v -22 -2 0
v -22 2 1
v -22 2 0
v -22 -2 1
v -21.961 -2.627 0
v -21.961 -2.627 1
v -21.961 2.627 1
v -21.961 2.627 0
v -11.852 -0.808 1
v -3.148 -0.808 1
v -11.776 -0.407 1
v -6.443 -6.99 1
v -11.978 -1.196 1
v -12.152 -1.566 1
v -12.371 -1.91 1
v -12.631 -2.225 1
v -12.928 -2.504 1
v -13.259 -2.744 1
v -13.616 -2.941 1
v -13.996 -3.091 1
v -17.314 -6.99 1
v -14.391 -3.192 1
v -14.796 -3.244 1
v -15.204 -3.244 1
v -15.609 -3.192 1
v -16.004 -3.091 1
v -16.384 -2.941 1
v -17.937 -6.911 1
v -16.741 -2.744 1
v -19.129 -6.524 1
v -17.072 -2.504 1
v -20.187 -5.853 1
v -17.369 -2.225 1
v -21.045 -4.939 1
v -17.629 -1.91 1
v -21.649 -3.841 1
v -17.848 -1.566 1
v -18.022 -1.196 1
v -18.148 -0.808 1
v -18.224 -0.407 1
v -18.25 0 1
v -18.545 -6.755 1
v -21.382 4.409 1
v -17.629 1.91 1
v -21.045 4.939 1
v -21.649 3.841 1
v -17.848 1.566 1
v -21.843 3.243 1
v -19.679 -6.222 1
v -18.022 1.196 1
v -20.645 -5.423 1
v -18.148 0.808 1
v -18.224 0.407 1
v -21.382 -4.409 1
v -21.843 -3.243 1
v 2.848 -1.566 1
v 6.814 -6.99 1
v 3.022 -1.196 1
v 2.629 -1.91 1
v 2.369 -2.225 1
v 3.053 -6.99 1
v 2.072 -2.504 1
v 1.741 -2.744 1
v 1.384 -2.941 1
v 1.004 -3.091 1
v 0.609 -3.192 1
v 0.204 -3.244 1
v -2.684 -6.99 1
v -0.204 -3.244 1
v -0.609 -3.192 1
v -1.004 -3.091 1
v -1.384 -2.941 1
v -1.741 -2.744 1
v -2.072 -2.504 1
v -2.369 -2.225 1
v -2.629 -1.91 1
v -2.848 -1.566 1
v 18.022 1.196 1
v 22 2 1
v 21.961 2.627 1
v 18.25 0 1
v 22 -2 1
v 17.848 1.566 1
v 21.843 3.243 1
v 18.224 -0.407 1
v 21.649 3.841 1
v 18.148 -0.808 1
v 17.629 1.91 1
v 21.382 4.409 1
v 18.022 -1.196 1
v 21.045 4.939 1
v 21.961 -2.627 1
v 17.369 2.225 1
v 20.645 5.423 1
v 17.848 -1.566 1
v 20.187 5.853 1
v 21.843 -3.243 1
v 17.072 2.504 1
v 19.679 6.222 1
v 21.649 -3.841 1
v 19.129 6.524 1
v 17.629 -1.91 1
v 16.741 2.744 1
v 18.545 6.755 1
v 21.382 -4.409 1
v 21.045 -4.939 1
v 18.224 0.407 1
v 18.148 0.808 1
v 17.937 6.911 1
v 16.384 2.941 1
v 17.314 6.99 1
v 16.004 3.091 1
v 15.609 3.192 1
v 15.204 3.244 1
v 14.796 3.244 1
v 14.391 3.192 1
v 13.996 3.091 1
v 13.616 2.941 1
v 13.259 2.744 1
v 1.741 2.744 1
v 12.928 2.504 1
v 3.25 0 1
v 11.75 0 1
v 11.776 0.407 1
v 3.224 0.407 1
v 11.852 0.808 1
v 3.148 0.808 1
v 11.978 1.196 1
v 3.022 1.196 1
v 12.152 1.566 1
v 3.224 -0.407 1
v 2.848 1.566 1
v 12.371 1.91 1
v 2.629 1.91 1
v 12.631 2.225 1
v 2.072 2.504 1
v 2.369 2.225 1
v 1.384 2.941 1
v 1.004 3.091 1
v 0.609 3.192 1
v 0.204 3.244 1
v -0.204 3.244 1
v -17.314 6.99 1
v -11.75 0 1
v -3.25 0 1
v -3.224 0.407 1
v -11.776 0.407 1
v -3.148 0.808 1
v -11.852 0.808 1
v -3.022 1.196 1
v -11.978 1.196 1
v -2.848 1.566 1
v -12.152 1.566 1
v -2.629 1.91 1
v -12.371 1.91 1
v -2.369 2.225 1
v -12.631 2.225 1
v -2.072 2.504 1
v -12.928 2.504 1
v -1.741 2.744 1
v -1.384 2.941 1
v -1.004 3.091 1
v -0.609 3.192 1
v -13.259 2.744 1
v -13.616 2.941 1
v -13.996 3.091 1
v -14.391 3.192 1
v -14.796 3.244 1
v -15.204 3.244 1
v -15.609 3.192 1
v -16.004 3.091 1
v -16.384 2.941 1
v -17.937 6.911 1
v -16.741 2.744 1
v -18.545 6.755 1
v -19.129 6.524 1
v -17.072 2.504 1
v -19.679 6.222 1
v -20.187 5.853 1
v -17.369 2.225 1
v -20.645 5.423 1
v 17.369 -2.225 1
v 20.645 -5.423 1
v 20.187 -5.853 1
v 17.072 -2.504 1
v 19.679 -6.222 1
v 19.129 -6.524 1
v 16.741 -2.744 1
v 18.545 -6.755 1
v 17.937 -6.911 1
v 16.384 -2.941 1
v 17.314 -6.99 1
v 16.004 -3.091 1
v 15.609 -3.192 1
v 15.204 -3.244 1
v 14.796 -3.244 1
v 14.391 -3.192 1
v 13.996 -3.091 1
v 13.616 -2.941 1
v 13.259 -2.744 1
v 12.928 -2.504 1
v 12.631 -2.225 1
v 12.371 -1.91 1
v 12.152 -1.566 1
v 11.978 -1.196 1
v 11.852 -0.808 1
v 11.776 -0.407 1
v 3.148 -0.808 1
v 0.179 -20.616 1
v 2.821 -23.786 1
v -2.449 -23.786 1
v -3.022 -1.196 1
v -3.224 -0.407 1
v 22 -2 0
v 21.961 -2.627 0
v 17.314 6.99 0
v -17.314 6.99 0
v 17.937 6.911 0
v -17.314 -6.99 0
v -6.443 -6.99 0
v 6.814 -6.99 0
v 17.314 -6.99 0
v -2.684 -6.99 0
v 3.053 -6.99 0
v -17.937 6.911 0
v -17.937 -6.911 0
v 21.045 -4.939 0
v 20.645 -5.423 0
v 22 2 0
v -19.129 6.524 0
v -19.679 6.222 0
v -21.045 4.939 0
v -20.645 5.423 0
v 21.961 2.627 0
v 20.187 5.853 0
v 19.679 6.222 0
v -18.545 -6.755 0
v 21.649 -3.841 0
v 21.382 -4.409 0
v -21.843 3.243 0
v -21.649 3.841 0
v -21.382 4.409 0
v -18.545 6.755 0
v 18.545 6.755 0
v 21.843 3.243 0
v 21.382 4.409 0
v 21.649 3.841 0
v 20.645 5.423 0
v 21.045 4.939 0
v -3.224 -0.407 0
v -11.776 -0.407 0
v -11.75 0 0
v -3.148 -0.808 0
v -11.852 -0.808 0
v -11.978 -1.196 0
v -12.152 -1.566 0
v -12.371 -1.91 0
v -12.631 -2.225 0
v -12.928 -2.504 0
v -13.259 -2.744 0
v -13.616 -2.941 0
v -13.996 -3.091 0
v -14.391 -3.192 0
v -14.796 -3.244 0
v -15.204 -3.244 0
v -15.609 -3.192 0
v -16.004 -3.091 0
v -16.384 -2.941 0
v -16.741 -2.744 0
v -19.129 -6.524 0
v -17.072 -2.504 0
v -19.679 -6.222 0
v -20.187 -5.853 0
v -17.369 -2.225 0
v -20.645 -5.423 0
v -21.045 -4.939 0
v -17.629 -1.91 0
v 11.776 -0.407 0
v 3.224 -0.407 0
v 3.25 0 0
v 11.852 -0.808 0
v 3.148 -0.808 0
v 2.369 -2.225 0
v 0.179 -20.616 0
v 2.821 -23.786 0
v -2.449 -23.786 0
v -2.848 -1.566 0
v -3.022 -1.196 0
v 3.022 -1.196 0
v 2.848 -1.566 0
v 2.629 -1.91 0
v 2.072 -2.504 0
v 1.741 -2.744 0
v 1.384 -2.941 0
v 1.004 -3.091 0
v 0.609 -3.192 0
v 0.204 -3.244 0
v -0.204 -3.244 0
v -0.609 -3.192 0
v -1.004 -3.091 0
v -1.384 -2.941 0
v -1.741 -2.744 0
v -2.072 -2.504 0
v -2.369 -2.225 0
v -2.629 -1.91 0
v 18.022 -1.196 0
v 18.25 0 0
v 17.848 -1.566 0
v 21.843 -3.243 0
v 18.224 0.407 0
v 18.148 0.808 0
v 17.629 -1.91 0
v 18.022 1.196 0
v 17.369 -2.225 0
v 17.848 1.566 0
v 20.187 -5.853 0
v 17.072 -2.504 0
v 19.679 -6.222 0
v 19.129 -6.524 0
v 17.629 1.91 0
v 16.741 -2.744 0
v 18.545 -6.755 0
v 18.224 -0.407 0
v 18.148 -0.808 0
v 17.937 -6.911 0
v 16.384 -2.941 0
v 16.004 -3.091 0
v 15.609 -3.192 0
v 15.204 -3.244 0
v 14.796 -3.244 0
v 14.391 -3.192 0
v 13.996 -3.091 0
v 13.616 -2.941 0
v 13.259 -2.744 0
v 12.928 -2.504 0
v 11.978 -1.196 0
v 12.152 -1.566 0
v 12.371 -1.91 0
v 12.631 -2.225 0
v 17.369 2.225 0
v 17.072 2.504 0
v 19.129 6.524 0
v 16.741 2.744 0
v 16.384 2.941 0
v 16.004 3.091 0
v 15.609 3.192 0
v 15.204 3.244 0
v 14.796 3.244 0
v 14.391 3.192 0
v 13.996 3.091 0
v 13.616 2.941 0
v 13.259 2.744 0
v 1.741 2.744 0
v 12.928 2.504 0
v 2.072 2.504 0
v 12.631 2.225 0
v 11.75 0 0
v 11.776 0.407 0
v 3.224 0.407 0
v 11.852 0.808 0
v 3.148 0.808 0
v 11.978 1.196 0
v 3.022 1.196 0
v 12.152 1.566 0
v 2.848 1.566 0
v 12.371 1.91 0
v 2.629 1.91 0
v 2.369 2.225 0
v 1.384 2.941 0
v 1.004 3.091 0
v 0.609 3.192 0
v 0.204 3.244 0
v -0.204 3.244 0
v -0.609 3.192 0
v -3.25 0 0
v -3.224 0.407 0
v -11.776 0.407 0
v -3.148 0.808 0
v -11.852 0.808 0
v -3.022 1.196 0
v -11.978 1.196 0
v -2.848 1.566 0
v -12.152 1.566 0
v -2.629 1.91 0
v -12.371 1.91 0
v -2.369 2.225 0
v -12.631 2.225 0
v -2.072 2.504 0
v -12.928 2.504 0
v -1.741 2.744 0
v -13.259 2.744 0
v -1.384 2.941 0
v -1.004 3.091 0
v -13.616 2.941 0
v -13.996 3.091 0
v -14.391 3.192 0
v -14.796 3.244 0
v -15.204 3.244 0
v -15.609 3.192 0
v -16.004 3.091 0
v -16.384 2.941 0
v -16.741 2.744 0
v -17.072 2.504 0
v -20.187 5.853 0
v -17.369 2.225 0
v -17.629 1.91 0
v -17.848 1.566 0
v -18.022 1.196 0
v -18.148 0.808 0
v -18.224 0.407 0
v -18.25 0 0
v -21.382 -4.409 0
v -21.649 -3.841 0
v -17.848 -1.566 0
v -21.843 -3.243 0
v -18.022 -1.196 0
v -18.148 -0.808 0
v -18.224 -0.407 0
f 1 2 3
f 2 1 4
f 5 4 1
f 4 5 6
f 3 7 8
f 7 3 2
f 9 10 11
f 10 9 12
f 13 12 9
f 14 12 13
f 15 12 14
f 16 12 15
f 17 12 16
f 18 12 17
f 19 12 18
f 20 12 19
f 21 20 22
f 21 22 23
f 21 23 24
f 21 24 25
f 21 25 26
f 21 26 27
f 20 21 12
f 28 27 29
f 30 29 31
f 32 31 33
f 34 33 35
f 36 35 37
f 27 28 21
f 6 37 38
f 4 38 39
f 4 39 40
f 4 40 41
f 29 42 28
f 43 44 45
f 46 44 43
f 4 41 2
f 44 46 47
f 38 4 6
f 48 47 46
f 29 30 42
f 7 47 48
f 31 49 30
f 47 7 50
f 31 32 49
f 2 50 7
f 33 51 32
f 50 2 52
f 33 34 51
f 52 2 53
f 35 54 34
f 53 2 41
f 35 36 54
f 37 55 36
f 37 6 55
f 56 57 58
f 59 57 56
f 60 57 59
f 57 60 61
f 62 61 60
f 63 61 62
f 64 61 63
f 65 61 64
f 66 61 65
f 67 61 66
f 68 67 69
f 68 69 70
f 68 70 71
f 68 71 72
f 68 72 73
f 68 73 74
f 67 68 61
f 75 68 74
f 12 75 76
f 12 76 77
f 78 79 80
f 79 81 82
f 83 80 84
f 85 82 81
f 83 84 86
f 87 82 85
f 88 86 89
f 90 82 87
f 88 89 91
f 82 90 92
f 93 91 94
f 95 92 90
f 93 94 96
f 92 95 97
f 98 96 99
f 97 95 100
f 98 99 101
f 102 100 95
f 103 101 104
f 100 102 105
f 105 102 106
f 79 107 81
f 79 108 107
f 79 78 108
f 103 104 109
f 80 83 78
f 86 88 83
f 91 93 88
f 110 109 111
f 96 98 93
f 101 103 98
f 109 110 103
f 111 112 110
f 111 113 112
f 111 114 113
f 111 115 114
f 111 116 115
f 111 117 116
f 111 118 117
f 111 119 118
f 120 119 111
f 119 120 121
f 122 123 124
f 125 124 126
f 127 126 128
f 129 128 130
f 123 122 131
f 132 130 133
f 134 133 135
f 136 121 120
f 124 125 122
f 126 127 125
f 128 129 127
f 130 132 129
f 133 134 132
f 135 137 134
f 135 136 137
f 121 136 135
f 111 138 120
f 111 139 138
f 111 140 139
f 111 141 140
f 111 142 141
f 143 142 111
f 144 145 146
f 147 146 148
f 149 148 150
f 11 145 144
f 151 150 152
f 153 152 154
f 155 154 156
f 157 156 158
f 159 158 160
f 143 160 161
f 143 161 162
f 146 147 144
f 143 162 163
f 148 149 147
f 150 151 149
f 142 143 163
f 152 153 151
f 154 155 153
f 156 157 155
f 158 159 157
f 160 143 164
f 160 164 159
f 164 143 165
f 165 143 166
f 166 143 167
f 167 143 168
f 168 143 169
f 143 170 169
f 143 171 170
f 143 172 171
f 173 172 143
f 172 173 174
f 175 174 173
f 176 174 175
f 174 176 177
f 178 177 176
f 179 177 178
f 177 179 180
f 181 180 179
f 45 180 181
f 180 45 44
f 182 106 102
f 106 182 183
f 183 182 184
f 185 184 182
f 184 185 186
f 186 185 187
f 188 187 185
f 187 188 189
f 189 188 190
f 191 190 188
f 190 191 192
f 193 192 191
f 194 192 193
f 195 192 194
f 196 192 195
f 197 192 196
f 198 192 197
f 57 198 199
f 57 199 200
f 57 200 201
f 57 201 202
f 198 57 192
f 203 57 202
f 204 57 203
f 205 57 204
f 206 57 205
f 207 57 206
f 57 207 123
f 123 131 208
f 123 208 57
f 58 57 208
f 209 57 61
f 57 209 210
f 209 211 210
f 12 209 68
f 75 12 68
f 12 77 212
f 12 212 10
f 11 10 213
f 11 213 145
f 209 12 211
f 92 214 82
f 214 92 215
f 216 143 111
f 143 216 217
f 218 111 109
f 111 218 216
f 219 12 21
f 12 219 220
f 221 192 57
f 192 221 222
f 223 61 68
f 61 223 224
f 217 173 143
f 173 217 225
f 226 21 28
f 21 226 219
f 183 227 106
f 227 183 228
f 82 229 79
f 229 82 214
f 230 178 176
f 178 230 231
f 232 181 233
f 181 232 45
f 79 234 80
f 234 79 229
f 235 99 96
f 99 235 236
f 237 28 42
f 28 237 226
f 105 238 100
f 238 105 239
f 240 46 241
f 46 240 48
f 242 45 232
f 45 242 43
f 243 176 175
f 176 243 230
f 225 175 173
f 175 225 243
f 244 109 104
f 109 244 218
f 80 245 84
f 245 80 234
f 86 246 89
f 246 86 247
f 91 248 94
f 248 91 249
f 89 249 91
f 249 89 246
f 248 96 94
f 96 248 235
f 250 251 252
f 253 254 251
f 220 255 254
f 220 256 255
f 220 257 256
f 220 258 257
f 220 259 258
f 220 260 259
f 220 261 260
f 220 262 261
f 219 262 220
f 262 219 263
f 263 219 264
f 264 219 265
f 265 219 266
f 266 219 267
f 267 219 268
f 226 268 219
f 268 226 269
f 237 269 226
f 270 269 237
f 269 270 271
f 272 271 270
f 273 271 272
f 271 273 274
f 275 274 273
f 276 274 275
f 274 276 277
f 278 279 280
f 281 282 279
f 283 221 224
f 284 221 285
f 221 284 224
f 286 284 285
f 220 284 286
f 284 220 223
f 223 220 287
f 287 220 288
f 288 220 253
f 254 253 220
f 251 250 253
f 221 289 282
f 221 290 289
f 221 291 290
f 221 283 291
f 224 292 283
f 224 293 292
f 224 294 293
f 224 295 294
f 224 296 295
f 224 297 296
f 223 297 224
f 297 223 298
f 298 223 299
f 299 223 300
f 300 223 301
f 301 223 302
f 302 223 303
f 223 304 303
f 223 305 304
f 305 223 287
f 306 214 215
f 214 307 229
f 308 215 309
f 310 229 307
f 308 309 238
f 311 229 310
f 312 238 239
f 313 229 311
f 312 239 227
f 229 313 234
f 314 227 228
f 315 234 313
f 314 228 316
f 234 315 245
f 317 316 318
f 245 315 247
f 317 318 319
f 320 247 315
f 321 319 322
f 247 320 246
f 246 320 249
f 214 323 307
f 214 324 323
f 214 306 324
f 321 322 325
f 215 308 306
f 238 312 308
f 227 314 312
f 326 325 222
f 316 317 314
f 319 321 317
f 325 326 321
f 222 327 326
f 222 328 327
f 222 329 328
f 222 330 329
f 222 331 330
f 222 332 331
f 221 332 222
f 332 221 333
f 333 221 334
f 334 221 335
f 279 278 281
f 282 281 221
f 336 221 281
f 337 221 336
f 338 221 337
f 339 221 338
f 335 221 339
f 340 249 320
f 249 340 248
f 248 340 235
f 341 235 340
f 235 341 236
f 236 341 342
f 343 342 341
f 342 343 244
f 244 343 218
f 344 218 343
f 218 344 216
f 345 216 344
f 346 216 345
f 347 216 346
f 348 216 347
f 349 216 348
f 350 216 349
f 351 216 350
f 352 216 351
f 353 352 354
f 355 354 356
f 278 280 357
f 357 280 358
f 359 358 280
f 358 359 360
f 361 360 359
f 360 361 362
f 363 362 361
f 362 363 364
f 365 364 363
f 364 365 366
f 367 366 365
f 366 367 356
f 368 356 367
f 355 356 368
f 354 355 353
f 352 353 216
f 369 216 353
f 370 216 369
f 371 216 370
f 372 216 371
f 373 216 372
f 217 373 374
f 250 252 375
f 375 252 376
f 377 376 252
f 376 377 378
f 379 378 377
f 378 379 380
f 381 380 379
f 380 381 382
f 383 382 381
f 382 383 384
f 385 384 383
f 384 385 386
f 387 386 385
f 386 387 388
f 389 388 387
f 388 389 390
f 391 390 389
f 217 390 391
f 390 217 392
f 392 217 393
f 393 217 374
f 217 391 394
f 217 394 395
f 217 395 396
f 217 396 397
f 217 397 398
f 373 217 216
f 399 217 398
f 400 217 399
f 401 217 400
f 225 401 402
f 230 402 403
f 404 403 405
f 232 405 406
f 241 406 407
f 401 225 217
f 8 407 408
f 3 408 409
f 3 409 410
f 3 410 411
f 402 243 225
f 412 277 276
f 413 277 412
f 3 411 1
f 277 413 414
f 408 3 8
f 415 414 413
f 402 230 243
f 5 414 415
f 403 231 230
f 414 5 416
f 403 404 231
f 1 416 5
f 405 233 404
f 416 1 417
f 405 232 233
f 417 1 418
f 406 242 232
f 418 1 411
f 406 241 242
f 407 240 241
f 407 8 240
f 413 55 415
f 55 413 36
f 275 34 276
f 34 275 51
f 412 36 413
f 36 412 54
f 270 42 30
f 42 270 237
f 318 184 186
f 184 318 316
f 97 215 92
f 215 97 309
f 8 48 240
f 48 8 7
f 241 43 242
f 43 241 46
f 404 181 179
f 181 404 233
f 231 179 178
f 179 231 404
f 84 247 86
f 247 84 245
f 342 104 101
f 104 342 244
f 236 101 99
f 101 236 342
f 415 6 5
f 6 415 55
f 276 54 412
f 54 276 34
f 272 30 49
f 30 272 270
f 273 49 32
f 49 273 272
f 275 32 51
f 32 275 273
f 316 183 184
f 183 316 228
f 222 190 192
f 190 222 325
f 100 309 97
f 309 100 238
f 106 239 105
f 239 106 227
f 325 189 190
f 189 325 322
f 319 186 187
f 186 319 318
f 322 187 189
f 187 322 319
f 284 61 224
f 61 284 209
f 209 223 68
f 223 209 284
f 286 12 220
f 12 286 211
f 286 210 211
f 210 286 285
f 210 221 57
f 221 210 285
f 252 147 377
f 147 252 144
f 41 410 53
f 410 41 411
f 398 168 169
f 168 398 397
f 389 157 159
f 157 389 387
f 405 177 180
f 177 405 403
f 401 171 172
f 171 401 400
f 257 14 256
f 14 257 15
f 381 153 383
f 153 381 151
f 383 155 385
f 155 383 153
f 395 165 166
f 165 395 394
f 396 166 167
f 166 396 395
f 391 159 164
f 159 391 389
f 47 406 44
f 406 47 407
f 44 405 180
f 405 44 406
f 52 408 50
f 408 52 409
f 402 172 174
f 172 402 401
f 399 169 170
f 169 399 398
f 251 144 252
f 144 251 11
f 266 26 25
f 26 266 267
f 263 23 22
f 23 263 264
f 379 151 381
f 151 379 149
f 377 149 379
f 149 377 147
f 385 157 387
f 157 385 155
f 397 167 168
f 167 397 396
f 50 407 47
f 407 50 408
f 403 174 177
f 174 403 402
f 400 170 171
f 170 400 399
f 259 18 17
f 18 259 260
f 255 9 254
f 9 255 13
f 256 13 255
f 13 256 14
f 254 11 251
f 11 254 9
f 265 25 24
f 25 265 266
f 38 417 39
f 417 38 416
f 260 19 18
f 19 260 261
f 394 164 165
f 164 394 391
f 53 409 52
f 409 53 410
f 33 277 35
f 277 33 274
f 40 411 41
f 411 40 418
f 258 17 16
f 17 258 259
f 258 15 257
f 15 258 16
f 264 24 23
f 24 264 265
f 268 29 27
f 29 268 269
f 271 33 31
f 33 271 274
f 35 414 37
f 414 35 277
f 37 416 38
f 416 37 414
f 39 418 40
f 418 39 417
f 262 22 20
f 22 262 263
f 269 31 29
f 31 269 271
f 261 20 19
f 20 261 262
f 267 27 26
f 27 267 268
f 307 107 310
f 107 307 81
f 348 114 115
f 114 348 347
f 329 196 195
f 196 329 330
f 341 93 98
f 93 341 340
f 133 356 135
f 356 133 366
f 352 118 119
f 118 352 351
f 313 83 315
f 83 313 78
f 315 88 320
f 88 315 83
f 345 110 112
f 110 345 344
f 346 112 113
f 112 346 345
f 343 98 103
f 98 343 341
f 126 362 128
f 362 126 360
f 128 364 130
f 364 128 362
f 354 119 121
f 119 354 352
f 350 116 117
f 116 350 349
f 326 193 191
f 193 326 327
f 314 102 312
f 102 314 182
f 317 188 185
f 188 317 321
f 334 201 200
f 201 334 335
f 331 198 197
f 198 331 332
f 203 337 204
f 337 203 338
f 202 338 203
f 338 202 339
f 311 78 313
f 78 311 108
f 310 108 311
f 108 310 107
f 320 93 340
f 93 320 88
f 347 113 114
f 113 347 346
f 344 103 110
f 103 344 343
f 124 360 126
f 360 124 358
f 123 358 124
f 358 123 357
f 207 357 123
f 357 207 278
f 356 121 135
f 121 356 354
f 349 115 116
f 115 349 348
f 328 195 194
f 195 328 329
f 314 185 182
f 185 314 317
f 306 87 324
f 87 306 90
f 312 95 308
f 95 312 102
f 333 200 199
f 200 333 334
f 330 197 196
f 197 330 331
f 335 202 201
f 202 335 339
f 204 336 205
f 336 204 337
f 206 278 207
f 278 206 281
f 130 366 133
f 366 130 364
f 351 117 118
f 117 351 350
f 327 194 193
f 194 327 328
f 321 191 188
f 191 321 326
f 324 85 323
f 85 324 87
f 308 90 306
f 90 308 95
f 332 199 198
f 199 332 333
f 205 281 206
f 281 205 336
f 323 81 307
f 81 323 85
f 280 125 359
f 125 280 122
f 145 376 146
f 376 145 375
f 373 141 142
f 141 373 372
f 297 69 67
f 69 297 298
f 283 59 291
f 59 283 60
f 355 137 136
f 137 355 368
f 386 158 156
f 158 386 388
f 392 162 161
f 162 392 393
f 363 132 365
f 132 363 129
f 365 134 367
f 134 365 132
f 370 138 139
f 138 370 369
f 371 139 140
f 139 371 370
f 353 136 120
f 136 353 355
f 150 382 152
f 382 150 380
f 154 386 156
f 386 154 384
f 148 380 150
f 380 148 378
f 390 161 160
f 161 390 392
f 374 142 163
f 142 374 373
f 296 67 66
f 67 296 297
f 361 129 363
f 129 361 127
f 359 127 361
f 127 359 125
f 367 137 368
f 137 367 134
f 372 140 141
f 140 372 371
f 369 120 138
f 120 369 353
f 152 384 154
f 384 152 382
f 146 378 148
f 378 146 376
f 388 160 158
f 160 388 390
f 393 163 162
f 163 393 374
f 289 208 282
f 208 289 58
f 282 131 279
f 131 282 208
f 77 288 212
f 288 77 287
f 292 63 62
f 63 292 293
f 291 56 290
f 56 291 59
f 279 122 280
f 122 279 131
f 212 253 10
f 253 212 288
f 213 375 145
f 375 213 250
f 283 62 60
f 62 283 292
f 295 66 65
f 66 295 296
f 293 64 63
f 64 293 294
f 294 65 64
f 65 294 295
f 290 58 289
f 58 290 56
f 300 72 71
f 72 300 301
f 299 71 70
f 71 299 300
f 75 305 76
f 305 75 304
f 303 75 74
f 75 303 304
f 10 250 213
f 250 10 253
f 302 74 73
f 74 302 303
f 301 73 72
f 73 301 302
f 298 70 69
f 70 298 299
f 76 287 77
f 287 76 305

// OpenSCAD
$fn = 50;


difference() {
	union() {
		translate(v = [0, 0, 0]) {
			rotate(a = [0, 0, 0]) {
				hull() {
					translate(v = [-17.0000000000, 2.0000000000, 0]) {
						rotate(a = [0, 0, 0]) {
							translate(v = [0, 0, 0]) {
								rotate(a = [0, 0, 0]) {
									cylinder(h = 1, r = 5);
								}
							}
						}
					}
					translate(v = [17.0000000000, 2.0000000000, 0]) {
						rotate(a = [0, 0, 0]) {
							translate(v = [0, 0, 0]) {
								rotate(a = [0, 0, 0]) {
									cylinder(h = 1, r = 5);
								}
							}
						}
					}
					translate(v = [-17.0000000000, -2.0000000000, 0]) {
						rotate(a = [0, 0, 0]) {
							translate(v = [0, 0, 0]) {
								rotate(a = [0, 0, 0]) {
									cylinder(h = 1, r = 5);
								}
							}
						}
					}
					translate(v = [17.0000000000, -2.0000000000, 0]) {
						rotate(a = [0, 0, 0]) {
							translate(v = [0, 0, 0]) {
								rotate(a = [0, 0, 0]) {
									cylinder(h = 1, r = 5);
								}
							}
						}
					}
				}
			}
		}
		translate(v = [0, -5, 0]) {
			rotate(a = [0, 0, 0]) {
				linear_extrude(height = 1) {
					text(font = "DejaVu Sans Mono:style=Bold", halign = "center", size = 19.0000000000, text = "V", valign = "top");
				}
			}
		}
	}
	union() {
		translate(v = [-15.0000000000, 0.0000000000, -125.0000000000]) {
			rotate(a = [0, 0, 0]) {
				cylinder(h = 250, r = 3.2500000000);
			}
		}
		translate(v = [15.0000000000, 0.0000000000, -125.0000000000]) {
			rotate(a = [0, 0, 0]) {
				cylinder(h = 250, r = 3.2500000000);
			}
		}
		translate(v = [15.0000000000, 0.0000000000, -125.0000000000]) {
			rotate(a = [0, 0, 0]) {
				cylinder(h = 250, r = 3.2500000000);
			}
		}
		translate(v = [0, 0, -125.0000000000]) {
			rotate(a = [0, 0, 0]) {
				cylinder(h = 250, r = 3.2500000000);
			}
		}
	}
}
